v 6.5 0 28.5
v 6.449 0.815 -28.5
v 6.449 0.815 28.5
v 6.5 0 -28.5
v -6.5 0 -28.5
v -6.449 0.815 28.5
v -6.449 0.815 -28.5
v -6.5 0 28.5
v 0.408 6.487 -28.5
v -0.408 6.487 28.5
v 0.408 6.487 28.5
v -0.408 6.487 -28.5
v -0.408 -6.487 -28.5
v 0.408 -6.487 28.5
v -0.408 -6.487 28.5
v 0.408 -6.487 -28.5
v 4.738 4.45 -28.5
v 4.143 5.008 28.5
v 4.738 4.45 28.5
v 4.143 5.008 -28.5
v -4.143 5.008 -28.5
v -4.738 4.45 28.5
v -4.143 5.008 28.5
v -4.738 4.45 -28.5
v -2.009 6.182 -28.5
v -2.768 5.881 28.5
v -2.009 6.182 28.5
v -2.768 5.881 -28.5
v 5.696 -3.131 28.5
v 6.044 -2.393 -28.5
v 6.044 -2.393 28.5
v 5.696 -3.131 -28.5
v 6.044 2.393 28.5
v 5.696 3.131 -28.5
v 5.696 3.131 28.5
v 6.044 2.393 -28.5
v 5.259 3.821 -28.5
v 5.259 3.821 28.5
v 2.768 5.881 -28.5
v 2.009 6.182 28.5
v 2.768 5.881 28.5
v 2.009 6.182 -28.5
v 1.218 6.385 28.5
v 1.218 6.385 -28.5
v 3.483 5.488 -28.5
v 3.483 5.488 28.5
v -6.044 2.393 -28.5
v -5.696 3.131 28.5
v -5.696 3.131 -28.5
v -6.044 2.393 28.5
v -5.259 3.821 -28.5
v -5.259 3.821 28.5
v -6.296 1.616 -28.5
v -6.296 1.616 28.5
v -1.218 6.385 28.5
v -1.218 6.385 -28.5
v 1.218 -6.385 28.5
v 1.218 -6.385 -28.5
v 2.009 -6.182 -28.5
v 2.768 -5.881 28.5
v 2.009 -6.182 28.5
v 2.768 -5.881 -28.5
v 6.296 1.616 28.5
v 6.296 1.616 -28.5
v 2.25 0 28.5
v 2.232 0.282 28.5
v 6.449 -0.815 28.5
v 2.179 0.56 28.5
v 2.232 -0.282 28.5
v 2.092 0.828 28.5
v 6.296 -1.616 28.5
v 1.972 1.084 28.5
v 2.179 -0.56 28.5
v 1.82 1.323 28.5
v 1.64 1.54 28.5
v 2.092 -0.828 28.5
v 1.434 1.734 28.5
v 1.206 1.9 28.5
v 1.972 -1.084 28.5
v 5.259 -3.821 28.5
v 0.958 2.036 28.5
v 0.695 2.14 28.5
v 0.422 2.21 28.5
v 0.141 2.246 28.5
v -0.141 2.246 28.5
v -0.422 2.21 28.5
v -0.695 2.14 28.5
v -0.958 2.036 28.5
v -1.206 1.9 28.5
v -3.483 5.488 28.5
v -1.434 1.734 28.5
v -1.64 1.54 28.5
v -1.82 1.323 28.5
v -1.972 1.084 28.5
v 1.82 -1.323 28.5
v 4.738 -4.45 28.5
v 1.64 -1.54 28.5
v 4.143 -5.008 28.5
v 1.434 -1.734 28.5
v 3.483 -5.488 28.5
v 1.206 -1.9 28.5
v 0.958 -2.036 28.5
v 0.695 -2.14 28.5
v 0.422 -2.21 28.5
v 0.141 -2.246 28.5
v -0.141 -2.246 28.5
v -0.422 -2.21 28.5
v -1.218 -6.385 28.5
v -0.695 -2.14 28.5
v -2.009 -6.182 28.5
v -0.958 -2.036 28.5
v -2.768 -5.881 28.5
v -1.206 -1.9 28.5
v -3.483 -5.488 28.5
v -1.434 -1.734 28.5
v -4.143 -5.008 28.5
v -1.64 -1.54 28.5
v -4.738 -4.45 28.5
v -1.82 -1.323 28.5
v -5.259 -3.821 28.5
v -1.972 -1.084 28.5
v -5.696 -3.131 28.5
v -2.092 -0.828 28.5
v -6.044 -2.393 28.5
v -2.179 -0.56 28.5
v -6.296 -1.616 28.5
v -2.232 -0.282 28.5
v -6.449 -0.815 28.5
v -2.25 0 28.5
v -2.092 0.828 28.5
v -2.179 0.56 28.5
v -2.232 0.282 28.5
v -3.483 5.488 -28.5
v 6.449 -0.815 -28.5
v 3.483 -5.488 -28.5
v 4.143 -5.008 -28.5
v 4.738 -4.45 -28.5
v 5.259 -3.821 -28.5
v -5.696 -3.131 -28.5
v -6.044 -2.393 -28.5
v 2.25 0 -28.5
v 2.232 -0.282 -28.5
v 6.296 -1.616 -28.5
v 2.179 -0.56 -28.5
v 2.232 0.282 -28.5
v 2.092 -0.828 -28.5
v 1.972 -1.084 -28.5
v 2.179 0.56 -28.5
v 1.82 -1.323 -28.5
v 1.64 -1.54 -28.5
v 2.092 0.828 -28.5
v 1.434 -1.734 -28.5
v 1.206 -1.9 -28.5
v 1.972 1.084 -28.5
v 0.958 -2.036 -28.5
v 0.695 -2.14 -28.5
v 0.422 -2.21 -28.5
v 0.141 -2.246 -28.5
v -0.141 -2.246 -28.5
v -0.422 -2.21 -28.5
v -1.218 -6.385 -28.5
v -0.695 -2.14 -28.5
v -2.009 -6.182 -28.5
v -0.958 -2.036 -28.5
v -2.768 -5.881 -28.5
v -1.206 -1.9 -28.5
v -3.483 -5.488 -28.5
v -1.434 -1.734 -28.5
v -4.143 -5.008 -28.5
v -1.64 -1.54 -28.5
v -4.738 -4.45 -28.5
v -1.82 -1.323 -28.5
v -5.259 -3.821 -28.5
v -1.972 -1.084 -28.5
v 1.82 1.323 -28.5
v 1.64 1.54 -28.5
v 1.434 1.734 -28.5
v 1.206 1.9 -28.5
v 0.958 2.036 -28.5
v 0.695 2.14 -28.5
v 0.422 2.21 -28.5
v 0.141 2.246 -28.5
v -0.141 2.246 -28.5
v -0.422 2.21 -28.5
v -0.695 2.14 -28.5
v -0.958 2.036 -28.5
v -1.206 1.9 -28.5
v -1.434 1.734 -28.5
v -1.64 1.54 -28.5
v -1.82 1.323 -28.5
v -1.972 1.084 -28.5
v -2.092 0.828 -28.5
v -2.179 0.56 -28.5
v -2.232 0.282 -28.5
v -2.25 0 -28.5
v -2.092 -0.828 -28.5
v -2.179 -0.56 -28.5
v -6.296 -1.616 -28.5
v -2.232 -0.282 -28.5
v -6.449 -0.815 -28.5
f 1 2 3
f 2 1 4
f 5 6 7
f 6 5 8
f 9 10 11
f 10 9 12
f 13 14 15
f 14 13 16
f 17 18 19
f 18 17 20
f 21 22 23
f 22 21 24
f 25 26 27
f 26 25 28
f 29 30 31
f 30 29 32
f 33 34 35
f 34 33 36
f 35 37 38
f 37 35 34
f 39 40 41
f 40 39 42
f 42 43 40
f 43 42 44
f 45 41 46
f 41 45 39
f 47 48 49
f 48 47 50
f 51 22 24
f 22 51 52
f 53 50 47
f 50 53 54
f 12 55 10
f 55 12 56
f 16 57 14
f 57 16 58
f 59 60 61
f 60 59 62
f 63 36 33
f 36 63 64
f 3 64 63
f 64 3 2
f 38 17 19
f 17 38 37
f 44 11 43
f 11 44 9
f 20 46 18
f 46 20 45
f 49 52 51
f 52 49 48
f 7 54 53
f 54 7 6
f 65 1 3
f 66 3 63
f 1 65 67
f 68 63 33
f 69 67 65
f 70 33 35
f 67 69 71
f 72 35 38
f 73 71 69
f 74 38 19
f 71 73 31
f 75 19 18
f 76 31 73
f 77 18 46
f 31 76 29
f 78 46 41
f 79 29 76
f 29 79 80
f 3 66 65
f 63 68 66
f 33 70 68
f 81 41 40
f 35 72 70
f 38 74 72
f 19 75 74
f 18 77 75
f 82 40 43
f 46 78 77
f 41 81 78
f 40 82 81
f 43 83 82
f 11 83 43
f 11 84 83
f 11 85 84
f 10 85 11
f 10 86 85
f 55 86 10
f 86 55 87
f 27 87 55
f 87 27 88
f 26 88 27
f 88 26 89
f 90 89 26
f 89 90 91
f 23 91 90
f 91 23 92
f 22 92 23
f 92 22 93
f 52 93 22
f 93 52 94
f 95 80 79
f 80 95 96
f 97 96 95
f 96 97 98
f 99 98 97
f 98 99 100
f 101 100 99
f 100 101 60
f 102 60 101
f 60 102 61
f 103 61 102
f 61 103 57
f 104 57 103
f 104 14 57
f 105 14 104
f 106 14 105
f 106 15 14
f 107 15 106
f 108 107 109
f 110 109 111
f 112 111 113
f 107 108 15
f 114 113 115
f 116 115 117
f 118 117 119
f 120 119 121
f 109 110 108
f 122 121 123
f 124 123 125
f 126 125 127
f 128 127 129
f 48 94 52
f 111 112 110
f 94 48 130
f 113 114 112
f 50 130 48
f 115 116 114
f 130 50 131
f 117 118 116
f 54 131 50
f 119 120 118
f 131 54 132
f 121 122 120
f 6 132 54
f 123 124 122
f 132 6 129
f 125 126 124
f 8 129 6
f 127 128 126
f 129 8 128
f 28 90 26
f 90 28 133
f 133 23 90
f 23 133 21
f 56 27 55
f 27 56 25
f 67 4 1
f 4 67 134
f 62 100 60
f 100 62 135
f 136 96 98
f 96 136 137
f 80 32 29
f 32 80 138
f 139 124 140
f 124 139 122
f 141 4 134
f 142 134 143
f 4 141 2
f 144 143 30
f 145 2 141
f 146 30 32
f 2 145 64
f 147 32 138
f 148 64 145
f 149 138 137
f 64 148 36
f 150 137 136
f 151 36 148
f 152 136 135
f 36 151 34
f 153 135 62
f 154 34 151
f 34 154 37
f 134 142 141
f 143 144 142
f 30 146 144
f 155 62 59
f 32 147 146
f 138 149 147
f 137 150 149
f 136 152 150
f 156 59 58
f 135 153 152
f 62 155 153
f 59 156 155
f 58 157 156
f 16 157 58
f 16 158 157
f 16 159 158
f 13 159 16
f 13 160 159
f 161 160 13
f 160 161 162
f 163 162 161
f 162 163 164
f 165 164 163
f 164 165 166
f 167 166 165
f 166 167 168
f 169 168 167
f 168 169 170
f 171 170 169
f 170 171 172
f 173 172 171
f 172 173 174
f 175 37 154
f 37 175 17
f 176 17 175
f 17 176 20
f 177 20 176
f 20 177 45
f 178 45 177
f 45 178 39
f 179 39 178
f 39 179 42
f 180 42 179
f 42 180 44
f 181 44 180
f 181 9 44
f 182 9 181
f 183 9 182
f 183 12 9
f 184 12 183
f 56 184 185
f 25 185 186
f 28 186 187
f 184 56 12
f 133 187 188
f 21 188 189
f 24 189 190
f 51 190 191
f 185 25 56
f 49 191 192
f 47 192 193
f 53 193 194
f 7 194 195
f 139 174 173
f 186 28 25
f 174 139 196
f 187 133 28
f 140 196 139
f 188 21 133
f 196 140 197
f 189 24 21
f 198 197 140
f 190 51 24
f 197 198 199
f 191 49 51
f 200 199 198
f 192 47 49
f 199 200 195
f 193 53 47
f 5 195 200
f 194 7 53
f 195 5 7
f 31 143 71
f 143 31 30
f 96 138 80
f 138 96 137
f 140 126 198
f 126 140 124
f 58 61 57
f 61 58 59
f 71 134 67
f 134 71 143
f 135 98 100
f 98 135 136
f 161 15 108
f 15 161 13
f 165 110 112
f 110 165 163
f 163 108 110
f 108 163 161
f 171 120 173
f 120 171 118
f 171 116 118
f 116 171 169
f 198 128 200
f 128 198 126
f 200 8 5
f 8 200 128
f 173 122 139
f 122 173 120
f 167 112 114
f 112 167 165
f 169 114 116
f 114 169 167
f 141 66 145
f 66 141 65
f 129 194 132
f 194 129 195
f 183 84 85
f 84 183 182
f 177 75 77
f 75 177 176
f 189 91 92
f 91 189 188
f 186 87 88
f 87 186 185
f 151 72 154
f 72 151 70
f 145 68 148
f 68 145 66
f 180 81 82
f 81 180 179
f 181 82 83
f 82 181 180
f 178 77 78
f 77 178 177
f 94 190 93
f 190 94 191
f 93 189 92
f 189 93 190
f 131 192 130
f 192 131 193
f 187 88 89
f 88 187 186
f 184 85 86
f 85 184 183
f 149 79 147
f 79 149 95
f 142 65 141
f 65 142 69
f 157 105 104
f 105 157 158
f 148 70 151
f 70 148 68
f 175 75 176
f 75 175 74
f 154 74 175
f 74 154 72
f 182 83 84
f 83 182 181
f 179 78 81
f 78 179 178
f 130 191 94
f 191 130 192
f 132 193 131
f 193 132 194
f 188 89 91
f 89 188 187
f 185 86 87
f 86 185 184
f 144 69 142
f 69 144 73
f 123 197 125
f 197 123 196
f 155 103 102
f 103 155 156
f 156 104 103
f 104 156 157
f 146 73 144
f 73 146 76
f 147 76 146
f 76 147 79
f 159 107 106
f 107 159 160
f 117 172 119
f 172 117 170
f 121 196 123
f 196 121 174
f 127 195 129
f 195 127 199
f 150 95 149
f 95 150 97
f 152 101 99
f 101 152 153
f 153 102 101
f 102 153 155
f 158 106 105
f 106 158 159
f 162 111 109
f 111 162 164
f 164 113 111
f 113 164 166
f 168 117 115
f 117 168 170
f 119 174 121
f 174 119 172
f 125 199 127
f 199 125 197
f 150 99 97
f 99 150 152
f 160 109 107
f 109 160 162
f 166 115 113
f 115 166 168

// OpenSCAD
$fn = 50;


difference() {
	union() {
		translate(v = [0, 0, -28.5000000000]) {
			cylinder(h = 57, r = 6.5000000000);
		}
	}
	union() {
		translate(v = [0, 0, -100.0000000000]) {
			cylinder(h = 200, r = 2.2500000000);
		}
	}
}
